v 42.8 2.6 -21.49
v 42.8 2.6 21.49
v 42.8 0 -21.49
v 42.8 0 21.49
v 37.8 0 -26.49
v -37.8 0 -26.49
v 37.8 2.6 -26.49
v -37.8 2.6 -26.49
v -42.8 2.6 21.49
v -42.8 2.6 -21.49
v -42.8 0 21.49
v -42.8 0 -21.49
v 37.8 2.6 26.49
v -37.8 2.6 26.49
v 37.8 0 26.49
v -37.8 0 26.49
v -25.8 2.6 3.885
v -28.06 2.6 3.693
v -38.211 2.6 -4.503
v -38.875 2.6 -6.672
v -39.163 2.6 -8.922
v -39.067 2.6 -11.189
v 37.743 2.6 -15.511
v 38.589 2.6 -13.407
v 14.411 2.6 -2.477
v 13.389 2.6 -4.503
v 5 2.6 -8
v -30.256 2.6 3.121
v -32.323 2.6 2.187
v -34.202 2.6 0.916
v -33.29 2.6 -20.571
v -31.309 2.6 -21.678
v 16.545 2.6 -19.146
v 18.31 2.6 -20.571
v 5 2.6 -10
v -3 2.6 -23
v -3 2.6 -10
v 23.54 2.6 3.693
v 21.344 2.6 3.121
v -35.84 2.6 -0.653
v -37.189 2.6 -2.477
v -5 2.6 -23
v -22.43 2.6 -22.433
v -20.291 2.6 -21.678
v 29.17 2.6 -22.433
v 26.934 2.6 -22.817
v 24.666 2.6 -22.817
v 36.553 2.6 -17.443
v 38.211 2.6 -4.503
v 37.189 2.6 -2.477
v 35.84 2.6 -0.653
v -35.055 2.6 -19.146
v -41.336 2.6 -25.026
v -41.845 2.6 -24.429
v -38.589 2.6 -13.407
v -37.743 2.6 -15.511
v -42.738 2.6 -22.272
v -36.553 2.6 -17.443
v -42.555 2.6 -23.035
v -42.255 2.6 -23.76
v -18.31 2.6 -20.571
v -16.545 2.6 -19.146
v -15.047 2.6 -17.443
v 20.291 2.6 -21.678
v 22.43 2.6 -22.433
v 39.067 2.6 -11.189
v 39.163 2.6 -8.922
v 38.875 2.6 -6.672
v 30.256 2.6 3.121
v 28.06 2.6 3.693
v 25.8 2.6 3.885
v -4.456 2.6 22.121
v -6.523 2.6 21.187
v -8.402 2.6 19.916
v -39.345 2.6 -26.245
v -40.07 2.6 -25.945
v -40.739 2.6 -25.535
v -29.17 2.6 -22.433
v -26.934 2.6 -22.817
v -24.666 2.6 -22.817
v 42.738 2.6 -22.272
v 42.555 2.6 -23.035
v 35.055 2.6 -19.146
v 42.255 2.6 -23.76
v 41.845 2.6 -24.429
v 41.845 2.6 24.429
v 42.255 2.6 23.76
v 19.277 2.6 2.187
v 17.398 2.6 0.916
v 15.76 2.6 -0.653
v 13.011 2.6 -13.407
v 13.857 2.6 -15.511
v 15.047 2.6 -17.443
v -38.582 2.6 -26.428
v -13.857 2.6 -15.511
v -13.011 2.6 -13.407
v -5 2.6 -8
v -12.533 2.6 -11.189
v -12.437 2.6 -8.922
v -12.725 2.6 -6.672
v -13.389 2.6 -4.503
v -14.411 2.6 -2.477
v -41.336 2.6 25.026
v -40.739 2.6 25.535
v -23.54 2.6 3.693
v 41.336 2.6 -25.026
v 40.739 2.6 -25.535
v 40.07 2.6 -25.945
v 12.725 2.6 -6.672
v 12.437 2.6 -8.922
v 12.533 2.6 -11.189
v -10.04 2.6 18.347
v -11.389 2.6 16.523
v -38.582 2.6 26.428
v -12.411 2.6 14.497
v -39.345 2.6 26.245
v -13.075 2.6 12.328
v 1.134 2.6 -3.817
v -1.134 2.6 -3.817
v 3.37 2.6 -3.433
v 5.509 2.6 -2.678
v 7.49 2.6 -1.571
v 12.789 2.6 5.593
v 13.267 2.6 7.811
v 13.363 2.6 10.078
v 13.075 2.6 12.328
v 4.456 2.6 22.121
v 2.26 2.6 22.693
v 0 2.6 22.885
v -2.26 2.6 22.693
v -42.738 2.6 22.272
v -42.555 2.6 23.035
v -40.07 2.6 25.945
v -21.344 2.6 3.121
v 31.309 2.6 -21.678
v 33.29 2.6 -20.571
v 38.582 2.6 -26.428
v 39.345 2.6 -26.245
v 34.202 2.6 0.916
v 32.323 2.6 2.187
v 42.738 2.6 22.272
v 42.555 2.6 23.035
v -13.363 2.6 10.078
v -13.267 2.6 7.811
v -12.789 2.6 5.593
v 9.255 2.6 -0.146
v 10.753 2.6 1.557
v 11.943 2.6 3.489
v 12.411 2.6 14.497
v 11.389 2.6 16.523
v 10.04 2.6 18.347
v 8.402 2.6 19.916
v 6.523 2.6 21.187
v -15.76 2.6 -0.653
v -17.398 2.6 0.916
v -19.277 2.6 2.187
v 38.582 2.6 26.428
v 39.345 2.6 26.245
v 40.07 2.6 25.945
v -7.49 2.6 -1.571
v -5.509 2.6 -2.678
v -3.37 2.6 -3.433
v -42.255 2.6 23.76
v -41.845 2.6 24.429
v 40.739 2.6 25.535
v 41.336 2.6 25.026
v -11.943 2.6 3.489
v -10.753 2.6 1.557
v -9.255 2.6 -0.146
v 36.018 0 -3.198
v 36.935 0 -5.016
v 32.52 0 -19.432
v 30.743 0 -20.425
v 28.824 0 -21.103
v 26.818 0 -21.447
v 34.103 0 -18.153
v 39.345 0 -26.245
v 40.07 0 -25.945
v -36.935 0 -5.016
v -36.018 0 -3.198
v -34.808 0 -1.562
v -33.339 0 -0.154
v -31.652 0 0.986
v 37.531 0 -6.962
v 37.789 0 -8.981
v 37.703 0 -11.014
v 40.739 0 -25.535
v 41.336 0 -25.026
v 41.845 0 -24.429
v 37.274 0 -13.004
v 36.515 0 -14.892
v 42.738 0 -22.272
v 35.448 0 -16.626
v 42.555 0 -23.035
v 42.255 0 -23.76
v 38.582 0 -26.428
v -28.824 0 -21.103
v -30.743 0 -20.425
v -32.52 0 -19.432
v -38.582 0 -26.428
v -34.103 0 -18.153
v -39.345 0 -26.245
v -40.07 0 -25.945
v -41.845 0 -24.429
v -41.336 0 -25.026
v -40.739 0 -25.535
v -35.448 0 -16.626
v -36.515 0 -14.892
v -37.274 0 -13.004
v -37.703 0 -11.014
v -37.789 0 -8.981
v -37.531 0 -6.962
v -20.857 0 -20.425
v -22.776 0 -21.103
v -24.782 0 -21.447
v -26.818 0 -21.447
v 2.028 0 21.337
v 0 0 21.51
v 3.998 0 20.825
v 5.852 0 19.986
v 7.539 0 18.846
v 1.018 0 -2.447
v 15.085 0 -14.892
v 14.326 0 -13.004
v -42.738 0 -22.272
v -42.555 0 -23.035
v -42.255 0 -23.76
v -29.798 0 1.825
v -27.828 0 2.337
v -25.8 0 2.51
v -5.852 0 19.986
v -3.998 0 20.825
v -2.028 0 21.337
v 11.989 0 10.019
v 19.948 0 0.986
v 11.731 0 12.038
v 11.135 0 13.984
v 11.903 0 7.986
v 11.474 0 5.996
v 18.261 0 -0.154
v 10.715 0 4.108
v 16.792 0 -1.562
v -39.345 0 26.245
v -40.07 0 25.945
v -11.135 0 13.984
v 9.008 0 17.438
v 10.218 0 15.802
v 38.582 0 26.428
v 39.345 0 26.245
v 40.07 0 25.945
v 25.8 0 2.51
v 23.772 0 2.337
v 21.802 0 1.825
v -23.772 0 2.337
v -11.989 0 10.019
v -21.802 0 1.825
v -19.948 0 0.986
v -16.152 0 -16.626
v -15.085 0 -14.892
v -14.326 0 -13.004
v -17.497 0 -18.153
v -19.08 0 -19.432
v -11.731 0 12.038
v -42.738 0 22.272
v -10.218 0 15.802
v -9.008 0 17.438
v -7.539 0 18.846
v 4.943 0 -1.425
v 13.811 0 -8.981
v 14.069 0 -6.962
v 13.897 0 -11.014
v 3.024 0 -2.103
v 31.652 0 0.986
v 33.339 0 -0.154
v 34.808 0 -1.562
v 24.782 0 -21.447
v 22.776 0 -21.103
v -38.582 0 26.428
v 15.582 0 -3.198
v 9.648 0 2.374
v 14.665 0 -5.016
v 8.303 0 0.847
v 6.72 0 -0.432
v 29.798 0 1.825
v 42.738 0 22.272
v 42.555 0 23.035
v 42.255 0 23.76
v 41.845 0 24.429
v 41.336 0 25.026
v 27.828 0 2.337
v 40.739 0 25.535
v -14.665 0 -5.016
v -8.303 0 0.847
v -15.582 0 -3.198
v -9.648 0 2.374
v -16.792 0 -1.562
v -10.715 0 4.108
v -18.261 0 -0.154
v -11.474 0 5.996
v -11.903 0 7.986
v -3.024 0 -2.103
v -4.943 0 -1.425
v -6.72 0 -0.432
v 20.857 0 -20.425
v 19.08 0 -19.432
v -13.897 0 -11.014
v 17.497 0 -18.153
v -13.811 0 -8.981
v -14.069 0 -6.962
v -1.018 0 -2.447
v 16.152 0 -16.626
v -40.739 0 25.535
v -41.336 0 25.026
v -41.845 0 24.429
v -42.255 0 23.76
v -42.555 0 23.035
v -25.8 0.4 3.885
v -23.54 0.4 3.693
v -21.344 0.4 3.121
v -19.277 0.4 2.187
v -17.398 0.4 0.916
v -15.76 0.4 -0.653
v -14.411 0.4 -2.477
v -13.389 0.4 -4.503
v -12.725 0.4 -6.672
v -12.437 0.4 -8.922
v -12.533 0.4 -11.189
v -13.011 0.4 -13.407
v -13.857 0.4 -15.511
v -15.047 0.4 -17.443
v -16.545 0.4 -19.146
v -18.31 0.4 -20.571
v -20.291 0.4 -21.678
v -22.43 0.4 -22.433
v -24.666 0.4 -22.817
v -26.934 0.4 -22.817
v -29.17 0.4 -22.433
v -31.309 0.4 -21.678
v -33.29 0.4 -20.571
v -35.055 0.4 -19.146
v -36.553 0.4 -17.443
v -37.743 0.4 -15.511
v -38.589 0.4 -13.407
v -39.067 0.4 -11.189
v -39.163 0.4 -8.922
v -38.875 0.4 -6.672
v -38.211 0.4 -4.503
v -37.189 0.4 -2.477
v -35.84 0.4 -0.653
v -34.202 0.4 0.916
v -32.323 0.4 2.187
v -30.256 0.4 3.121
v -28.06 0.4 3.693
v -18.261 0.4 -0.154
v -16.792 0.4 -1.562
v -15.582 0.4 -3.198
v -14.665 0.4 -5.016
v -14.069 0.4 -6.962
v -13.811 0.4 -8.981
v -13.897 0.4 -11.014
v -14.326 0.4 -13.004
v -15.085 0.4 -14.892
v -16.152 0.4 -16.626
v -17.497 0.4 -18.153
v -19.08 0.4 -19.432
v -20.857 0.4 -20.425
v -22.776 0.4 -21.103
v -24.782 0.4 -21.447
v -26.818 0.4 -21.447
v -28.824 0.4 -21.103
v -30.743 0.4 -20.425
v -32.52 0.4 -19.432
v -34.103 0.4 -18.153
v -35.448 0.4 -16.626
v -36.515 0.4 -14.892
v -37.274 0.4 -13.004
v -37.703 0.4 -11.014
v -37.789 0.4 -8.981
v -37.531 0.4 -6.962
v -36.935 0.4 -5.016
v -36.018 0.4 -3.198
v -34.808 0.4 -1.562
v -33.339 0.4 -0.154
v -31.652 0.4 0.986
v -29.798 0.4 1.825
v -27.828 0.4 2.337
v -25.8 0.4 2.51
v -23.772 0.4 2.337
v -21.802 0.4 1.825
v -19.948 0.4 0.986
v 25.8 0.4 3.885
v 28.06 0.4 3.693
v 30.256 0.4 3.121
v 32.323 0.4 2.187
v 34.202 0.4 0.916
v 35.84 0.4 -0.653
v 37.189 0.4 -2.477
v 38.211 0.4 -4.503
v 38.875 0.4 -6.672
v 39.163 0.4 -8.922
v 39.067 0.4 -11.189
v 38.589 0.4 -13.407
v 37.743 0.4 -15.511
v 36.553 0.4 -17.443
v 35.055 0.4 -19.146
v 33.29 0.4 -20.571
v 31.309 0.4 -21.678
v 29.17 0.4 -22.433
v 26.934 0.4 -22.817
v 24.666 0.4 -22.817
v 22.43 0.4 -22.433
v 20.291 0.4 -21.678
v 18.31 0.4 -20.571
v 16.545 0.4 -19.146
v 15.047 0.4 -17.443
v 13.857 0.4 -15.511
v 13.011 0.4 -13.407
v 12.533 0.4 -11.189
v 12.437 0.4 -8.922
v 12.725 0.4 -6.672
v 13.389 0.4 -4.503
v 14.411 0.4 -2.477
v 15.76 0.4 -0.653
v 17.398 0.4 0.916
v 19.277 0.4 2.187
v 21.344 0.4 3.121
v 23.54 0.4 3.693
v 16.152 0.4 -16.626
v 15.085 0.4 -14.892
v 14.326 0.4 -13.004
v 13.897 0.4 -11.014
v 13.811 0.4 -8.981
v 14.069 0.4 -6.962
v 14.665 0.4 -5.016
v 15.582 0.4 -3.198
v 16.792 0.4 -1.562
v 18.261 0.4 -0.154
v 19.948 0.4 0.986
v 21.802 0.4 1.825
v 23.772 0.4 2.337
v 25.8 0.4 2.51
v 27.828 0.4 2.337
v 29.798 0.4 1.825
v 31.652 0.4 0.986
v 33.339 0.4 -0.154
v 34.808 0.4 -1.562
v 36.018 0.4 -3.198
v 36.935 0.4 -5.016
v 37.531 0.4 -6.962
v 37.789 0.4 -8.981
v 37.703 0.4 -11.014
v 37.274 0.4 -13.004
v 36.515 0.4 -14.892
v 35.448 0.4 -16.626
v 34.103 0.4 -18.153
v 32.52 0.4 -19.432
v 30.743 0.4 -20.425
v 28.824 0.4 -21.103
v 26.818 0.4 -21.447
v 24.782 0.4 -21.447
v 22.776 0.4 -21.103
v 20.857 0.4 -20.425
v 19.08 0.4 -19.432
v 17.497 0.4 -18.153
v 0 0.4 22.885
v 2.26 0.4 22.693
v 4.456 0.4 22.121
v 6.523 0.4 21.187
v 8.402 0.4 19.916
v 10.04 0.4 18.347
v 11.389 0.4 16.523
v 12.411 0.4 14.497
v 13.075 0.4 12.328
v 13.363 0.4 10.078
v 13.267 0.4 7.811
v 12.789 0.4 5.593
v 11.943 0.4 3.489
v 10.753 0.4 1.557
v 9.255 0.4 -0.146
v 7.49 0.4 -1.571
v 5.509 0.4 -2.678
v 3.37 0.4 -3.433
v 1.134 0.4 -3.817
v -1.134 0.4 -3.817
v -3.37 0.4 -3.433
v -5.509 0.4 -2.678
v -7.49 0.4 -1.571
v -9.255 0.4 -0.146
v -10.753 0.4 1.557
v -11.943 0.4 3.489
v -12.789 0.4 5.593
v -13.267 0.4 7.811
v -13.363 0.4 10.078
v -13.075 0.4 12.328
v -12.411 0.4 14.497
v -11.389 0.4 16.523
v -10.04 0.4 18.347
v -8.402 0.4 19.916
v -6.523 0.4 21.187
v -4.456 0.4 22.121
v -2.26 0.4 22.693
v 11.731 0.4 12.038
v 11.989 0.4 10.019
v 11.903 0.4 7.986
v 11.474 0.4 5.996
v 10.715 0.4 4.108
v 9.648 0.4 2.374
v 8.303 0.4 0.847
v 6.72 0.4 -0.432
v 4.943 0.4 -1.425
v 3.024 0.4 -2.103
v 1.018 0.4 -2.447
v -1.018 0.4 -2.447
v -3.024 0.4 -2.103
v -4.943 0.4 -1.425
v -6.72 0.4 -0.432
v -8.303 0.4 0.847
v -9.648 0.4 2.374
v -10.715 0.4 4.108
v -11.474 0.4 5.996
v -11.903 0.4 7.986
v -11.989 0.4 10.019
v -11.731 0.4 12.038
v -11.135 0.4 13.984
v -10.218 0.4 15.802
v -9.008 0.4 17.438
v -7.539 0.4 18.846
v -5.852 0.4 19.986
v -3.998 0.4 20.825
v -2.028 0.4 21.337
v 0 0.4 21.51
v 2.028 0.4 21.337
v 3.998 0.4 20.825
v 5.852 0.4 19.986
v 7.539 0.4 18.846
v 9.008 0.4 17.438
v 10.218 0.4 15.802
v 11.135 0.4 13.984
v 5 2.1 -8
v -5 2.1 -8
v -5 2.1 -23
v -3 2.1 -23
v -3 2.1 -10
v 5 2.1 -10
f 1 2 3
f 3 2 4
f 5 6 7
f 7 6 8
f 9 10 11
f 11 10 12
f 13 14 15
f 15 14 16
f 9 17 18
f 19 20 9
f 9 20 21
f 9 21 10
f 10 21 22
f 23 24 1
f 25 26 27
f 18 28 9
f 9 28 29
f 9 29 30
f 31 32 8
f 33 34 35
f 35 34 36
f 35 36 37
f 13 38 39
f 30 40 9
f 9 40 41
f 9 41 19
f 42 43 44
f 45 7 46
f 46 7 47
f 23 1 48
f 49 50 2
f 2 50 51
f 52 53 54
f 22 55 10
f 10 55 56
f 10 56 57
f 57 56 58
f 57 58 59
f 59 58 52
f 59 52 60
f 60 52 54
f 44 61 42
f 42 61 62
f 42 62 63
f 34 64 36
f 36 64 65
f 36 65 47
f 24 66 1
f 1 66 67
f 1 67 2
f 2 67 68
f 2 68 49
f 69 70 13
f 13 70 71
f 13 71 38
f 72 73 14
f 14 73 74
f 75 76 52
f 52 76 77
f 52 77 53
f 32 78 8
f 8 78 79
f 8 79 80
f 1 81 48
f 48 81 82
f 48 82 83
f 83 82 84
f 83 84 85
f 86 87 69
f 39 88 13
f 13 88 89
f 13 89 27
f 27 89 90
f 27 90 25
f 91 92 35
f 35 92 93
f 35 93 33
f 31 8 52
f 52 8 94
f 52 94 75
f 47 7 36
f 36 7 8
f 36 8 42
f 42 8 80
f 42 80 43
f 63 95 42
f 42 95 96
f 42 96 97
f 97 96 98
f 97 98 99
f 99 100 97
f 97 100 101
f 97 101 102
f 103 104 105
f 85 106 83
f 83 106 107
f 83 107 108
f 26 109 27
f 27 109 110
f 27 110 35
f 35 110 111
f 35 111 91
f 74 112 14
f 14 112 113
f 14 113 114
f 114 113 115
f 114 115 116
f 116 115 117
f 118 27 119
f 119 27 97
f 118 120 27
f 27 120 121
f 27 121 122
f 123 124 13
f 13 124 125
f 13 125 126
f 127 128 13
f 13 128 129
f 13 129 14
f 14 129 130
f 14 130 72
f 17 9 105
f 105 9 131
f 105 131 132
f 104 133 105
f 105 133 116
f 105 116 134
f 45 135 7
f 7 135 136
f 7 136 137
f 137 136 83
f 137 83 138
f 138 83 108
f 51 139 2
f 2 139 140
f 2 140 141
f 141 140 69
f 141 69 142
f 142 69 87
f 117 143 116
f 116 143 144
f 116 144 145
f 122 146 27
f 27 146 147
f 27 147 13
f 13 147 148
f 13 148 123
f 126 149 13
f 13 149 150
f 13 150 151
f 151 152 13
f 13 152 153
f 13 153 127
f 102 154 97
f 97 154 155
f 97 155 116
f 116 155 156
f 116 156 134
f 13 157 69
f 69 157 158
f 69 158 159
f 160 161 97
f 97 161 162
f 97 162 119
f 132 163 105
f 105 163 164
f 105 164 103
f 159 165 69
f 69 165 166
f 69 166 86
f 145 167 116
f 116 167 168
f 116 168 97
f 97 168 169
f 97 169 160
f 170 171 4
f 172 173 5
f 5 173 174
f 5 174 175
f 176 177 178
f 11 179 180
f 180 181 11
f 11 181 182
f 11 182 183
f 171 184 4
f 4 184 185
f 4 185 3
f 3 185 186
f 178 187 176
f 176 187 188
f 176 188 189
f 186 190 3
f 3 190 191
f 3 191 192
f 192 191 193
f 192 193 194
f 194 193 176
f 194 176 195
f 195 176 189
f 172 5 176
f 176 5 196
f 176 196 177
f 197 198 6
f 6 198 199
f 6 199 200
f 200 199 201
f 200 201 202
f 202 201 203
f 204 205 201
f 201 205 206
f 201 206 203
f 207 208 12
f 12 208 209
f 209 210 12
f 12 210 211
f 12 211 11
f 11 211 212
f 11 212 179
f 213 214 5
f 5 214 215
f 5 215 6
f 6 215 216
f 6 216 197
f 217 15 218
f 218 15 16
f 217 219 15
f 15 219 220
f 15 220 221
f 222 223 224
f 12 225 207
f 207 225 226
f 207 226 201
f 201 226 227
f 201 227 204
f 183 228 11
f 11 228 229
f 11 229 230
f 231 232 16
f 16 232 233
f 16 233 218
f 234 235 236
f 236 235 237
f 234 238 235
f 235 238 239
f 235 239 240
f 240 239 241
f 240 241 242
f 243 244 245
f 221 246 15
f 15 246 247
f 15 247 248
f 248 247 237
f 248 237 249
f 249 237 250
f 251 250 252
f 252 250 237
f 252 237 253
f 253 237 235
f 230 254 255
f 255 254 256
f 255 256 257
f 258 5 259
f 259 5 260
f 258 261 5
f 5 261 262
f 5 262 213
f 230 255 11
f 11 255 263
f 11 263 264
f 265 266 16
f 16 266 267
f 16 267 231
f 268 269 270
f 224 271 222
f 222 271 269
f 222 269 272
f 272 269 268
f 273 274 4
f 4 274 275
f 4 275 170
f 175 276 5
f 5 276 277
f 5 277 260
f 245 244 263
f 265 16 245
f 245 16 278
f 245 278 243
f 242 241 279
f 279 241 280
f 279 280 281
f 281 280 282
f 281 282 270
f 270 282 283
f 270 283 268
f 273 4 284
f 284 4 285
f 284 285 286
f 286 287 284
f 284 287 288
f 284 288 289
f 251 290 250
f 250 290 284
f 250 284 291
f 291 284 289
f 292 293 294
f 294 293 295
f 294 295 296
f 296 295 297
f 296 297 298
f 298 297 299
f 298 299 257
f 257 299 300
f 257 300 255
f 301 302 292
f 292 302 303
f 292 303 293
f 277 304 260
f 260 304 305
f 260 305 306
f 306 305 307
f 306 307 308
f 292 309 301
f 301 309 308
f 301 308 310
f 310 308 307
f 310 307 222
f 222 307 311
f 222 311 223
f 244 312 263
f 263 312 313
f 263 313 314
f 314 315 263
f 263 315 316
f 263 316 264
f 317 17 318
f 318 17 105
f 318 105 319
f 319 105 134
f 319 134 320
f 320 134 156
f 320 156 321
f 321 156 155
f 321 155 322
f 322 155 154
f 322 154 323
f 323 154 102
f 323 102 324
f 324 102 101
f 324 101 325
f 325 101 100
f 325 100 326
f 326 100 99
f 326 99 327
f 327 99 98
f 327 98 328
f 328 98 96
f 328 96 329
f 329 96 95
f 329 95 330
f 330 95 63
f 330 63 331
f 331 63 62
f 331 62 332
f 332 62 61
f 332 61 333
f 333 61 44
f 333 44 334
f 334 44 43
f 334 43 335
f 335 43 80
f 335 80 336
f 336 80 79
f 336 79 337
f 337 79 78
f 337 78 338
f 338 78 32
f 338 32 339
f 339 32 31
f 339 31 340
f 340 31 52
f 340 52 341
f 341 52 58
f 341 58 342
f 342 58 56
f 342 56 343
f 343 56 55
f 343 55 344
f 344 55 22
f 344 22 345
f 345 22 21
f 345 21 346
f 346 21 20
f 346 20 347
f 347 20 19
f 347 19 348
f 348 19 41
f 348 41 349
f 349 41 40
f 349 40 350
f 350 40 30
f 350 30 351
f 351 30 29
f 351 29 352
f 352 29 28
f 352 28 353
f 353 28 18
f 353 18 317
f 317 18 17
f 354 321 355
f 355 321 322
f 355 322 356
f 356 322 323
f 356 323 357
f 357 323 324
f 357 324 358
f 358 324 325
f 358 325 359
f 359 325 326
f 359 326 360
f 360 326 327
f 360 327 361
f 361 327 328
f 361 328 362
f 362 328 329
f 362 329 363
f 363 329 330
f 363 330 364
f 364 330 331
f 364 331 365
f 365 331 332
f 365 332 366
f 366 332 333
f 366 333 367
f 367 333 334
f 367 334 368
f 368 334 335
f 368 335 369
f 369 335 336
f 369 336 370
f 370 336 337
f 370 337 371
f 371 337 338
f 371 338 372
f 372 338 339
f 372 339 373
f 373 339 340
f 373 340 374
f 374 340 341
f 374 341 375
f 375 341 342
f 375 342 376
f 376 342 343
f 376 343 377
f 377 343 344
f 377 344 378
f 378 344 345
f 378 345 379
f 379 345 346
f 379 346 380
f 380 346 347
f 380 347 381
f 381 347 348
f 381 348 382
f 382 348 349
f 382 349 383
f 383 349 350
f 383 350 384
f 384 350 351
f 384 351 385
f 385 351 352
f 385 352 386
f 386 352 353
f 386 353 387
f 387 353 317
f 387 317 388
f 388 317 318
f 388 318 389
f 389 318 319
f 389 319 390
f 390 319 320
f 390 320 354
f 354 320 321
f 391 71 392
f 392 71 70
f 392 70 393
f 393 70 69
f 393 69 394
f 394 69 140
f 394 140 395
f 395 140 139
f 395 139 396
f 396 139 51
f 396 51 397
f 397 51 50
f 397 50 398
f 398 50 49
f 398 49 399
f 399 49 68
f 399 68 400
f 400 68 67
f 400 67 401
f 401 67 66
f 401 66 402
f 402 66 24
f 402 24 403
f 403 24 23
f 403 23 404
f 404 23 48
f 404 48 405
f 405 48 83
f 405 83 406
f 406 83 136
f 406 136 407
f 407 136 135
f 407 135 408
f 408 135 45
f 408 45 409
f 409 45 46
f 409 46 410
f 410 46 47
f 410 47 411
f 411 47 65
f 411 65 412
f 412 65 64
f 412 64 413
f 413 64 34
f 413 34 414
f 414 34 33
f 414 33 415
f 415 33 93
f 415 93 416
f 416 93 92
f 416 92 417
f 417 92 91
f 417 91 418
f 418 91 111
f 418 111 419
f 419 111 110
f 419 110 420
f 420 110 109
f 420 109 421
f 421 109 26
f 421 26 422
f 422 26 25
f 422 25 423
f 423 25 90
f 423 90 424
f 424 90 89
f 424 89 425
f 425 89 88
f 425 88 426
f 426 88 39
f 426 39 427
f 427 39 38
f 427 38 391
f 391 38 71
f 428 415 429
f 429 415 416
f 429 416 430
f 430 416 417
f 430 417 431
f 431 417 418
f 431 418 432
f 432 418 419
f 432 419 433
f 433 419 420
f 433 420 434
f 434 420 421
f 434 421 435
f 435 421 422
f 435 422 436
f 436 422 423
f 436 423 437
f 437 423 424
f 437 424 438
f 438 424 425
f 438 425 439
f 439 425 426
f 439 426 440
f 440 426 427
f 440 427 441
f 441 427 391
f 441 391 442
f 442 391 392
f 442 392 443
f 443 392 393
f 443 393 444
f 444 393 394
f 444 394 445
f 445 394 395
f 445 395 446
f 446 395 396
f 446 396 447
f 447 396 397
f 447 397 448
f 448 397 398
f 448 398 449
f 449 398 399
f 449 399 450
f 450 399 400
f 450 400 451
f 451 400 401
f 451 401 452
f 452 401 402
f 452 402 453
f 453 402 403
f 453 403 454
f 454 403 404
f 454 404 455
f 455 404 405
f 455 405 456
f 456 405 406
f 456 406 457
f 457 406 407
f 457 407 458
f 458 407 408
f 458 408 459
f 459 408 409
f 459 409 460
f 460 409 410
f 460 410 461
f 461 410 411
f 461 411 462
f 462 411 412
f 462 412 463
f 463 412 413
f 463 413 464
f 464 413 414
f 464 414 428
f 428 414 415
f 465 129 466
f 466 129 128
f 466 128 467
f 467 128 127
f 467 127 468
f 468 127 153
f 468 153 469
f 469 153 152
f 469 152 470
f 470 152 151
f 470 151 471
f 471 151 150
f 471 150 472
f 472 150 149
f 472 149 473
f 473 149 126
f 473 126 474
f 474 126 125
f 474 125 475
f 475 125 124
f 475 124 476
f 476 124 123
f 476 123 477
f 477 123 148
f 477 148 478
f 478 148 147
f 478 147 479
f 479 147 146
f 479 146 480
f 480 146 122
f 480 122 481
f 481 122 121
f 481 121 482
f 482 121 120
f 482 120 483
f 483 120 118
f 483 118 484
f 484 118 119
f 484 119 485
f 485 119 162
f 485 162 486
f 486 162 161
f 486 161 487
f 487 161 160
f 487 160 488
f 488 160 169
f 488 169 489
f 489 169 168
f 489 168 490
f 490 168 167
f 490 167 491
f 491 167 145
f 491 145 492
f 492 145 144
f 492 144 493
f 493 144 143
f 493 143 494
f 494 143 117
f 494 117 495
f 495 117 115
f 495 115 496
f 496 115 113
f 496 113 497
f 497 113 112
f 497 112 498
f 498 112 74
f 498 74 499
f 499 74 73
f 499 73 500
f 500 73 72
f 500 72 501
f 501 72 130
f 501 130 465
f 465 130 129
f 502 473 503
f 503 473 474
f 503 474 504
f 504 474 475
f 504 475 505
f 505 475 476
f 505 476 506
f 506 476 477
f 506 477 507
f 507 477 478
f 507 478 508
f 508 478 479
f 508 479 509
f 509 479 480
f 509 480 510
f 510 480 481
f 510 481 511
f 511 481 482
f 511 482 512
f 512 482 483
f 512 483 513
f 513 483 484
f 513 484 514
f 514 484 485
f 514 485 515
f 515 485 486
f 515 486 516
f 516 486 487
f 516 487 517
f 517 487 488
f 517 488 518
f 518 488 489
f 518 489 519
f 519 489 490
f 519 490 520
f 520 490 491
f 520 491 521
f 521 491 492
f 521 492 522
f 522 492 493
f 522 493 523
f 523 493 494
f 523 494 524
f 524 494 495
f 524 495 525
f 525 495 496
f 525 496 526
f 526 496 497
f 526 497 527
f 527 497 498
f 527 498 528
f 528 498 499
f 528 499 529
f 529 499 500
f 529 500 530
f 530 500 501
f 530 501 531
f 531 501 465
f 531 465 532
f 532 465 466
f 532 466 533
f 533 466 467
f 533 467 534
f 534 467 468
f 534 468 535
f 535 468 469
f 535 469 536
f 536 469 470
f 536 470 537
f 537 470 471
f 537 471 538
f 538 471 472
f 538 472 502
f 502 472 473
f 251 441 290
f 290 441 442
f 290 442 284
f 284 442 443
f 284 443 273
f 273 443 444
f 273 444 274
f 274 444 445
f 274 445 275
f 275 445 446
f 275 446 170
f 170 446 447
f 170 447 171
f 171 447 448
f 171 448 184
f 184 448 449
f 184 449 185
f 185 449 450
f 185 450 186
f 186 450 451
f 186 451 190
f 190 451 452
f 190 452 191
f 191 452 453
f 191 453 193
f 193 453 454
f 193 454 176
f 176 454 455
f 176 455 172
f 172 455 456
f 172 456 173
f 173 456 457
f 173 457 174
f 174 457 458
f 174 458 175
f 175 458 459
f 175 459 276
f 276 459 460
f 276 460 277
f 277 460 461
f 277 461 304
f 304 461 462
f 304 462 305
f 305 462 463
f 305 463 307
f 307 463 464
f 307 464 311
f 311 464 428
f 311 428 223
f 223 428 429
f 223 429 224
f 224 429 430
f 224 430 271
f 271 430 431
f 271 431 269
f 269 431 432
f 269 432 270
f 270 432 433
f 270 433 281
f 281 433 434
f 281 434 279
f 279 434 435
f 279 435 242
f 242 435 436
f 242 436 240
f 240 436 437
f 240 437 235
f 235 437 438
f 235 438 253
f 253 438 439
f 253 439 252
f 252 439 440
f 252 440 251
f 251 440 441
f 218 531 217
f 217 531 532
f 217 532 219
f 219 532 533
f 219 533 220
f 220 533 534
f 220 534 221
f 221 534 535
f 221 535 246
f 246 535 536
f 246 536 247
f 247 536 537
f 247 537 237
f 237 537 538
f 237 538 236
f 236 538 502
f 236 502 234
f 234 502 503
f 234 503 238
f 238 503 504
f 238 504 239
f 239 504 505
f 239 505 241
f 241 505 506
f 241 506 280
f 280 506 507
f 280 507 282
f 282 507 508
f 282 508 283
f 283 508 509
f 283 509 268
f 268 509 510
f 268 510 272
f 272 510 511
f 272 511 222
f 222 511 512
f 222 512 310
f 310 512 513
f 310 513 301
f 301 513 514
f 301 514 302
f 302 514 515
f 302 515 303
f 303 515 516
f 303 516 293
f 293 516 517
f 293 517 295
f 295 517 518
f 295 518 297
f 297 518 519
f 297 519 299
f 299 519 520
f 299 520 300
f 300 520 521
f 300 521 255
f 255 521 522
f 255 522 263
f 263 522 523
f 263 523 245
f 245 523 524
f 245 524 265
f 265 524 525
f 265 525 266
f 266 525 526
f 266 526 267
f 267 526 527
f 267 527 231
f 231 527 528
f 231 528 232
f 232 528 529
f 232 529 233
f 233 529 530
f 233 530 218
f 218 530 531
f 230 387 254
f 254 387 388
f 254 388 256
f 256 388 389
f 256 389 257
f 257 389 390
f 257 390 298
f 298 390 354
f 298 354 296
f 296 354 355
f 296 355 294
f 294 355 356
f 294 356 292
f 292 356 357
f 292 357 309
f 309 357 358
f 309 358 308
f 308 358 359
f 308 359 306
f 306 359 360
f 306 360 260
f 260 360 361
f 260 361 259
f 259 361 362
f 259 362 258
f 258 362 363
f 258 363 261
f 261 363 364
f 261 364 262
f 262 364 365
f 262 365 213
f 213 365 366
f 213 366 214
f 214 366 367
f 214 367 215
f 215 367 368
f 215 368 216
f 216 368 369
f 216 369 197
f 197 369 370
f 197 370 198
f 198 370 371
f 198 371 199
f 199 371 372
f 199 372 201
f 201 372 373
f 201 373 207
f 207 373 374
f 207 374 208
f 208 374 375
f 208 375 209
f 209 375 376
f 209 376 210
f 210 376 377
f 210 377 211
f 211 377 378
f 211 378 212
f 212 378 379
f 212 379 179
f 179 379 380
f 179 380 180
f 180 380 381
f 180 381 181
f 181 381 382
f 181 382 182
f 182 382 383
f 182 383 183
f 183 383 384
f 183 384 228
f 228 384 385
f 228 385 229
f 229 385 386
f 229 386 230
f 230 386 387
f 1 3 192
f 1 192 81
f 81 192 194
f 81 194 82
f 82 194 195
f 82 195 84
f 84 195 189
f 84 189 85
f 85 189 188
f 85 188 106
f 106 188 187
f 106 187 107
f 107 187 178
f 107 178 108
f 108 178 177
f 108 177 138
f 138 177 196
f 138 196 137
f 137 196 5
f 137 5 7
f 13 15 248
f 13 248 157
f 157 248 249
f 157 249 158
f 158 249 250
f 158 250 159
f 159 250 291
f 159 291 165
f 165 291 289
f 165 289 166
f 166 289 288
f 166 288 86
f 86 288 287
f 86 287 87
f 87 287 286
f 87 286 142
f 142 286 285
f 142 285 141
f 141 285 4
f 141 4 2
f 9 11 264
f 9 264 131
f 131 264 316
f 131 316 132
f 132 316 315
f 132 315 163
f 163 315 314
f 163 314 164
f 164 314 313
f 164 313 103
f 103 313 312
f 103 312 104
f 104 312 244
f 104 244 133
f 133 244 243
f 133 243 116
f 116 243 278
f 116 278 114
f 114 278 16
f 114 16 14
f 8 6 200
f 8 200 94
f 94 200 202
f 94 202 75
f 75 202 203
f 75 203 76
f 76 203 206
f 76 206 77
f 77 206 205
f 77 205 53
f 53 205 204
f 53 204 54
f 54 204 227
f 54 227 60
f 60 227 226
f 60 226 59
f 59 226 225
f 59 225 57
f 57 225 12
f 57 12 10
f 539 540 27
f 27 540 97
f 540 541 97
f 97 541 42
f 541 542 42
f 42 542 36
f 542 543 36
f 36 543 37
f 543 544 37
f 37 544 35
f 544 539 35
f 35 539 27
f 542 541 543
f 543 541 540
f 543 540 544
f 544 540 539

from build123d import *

# Parameters (mm, degrees)
SKETCH1_W           = 85.6
SKETCH1_H           = 52.98
BOSS_EXTRUDE1_DEPTH = 2.6
SKETCH2_R           = 13.375
CUT_EXTRUDE1_DEPTH  = 2.2
SKETCH3_R           = 12
CUT_EXTRUDE2_DEPTH  = 1.75
FILLET1_R           = 5
CUT_EXTRUDE3_DEPTH  = 0.5


with BuildPart() as part:
    # Sketch1 → Boss-Extrude1 (new body)
    with BuildSketch(Plane(origin=(0, 0, 0), x_dir=(1, 0, 0), z_dir=(0, 1, 0))):
        Rectangle(SKETCH1_W, SKETCH1_H)
    extrude(amount=BOSS_EXTRUDE1_DEPTH)

    # Sketch2 → Cut-Extrude1 (cut)
    with BuildSketch(Plane(origin=(0, 2.6, 0), x_dir=(1, 0, 0), z_dir=(0, 1, 0))):
        with Locations((-25.8, 9.49)):
            Circle(SKETCH2_R)
        with Locations((0, -9.51)):
            Circle(SKETCH2_R)
        with Locations((25.8, 9.49)):
            Circle(SKETCH2_R)
    extrude(amount=-CUT_EXTRUDE1_DEPTH, mode=Mode.SUBTRACT)

    # Sketch3 → Cut-Extrude2 (cut)
    with BuildSketch(Plane(origin=(0, 0.4, 0), x_dir=(1, 0, 0), z_dir=(0, 1, 0))):
        with Locations((-25.8, 9.49)):
            Circle(SKETCH3_R)
        with Locations((0, -9.51)):
            Circle(SKETCH3_R)
        with Locations((25.8, 9.49)):
            Circle(SKETCH3_R)
    extrude(amount=-CUT_EXTRUDE2_DEPTH, mode=Mode.SUBTRACT)

    # Fillet1
    fillet1_edges = [part.edges().sort_by_distance(p)[0] for p in [
        (42.8, 1.3, -26.49),
        (42.8, 1.3, 26.49),
        (-42.8, 1.3, 26.49),
        (-42.8, 1.3, -26.49),
    ]]
    fillet(fillet1_edges, radius=FILLET1_R)

    # Sketch4 → Cut-Extrude3 (cut)
    with BuildSketch(Plane(origin=(0, 2.6, 0), x_dir=(1, 0, 0), z_dir=(0, 1, 0))):
        Polygon((5, 10), (-3, 10), (-3, 23), (-5, 23), (-5, 10), (-5, 8), (-3, 8), (5, 8), align=None)
    extrude(amount=-CUT_EXTRUDE3_DEPTH, mode=Mode.SUBTRACT)


solid = part.part
